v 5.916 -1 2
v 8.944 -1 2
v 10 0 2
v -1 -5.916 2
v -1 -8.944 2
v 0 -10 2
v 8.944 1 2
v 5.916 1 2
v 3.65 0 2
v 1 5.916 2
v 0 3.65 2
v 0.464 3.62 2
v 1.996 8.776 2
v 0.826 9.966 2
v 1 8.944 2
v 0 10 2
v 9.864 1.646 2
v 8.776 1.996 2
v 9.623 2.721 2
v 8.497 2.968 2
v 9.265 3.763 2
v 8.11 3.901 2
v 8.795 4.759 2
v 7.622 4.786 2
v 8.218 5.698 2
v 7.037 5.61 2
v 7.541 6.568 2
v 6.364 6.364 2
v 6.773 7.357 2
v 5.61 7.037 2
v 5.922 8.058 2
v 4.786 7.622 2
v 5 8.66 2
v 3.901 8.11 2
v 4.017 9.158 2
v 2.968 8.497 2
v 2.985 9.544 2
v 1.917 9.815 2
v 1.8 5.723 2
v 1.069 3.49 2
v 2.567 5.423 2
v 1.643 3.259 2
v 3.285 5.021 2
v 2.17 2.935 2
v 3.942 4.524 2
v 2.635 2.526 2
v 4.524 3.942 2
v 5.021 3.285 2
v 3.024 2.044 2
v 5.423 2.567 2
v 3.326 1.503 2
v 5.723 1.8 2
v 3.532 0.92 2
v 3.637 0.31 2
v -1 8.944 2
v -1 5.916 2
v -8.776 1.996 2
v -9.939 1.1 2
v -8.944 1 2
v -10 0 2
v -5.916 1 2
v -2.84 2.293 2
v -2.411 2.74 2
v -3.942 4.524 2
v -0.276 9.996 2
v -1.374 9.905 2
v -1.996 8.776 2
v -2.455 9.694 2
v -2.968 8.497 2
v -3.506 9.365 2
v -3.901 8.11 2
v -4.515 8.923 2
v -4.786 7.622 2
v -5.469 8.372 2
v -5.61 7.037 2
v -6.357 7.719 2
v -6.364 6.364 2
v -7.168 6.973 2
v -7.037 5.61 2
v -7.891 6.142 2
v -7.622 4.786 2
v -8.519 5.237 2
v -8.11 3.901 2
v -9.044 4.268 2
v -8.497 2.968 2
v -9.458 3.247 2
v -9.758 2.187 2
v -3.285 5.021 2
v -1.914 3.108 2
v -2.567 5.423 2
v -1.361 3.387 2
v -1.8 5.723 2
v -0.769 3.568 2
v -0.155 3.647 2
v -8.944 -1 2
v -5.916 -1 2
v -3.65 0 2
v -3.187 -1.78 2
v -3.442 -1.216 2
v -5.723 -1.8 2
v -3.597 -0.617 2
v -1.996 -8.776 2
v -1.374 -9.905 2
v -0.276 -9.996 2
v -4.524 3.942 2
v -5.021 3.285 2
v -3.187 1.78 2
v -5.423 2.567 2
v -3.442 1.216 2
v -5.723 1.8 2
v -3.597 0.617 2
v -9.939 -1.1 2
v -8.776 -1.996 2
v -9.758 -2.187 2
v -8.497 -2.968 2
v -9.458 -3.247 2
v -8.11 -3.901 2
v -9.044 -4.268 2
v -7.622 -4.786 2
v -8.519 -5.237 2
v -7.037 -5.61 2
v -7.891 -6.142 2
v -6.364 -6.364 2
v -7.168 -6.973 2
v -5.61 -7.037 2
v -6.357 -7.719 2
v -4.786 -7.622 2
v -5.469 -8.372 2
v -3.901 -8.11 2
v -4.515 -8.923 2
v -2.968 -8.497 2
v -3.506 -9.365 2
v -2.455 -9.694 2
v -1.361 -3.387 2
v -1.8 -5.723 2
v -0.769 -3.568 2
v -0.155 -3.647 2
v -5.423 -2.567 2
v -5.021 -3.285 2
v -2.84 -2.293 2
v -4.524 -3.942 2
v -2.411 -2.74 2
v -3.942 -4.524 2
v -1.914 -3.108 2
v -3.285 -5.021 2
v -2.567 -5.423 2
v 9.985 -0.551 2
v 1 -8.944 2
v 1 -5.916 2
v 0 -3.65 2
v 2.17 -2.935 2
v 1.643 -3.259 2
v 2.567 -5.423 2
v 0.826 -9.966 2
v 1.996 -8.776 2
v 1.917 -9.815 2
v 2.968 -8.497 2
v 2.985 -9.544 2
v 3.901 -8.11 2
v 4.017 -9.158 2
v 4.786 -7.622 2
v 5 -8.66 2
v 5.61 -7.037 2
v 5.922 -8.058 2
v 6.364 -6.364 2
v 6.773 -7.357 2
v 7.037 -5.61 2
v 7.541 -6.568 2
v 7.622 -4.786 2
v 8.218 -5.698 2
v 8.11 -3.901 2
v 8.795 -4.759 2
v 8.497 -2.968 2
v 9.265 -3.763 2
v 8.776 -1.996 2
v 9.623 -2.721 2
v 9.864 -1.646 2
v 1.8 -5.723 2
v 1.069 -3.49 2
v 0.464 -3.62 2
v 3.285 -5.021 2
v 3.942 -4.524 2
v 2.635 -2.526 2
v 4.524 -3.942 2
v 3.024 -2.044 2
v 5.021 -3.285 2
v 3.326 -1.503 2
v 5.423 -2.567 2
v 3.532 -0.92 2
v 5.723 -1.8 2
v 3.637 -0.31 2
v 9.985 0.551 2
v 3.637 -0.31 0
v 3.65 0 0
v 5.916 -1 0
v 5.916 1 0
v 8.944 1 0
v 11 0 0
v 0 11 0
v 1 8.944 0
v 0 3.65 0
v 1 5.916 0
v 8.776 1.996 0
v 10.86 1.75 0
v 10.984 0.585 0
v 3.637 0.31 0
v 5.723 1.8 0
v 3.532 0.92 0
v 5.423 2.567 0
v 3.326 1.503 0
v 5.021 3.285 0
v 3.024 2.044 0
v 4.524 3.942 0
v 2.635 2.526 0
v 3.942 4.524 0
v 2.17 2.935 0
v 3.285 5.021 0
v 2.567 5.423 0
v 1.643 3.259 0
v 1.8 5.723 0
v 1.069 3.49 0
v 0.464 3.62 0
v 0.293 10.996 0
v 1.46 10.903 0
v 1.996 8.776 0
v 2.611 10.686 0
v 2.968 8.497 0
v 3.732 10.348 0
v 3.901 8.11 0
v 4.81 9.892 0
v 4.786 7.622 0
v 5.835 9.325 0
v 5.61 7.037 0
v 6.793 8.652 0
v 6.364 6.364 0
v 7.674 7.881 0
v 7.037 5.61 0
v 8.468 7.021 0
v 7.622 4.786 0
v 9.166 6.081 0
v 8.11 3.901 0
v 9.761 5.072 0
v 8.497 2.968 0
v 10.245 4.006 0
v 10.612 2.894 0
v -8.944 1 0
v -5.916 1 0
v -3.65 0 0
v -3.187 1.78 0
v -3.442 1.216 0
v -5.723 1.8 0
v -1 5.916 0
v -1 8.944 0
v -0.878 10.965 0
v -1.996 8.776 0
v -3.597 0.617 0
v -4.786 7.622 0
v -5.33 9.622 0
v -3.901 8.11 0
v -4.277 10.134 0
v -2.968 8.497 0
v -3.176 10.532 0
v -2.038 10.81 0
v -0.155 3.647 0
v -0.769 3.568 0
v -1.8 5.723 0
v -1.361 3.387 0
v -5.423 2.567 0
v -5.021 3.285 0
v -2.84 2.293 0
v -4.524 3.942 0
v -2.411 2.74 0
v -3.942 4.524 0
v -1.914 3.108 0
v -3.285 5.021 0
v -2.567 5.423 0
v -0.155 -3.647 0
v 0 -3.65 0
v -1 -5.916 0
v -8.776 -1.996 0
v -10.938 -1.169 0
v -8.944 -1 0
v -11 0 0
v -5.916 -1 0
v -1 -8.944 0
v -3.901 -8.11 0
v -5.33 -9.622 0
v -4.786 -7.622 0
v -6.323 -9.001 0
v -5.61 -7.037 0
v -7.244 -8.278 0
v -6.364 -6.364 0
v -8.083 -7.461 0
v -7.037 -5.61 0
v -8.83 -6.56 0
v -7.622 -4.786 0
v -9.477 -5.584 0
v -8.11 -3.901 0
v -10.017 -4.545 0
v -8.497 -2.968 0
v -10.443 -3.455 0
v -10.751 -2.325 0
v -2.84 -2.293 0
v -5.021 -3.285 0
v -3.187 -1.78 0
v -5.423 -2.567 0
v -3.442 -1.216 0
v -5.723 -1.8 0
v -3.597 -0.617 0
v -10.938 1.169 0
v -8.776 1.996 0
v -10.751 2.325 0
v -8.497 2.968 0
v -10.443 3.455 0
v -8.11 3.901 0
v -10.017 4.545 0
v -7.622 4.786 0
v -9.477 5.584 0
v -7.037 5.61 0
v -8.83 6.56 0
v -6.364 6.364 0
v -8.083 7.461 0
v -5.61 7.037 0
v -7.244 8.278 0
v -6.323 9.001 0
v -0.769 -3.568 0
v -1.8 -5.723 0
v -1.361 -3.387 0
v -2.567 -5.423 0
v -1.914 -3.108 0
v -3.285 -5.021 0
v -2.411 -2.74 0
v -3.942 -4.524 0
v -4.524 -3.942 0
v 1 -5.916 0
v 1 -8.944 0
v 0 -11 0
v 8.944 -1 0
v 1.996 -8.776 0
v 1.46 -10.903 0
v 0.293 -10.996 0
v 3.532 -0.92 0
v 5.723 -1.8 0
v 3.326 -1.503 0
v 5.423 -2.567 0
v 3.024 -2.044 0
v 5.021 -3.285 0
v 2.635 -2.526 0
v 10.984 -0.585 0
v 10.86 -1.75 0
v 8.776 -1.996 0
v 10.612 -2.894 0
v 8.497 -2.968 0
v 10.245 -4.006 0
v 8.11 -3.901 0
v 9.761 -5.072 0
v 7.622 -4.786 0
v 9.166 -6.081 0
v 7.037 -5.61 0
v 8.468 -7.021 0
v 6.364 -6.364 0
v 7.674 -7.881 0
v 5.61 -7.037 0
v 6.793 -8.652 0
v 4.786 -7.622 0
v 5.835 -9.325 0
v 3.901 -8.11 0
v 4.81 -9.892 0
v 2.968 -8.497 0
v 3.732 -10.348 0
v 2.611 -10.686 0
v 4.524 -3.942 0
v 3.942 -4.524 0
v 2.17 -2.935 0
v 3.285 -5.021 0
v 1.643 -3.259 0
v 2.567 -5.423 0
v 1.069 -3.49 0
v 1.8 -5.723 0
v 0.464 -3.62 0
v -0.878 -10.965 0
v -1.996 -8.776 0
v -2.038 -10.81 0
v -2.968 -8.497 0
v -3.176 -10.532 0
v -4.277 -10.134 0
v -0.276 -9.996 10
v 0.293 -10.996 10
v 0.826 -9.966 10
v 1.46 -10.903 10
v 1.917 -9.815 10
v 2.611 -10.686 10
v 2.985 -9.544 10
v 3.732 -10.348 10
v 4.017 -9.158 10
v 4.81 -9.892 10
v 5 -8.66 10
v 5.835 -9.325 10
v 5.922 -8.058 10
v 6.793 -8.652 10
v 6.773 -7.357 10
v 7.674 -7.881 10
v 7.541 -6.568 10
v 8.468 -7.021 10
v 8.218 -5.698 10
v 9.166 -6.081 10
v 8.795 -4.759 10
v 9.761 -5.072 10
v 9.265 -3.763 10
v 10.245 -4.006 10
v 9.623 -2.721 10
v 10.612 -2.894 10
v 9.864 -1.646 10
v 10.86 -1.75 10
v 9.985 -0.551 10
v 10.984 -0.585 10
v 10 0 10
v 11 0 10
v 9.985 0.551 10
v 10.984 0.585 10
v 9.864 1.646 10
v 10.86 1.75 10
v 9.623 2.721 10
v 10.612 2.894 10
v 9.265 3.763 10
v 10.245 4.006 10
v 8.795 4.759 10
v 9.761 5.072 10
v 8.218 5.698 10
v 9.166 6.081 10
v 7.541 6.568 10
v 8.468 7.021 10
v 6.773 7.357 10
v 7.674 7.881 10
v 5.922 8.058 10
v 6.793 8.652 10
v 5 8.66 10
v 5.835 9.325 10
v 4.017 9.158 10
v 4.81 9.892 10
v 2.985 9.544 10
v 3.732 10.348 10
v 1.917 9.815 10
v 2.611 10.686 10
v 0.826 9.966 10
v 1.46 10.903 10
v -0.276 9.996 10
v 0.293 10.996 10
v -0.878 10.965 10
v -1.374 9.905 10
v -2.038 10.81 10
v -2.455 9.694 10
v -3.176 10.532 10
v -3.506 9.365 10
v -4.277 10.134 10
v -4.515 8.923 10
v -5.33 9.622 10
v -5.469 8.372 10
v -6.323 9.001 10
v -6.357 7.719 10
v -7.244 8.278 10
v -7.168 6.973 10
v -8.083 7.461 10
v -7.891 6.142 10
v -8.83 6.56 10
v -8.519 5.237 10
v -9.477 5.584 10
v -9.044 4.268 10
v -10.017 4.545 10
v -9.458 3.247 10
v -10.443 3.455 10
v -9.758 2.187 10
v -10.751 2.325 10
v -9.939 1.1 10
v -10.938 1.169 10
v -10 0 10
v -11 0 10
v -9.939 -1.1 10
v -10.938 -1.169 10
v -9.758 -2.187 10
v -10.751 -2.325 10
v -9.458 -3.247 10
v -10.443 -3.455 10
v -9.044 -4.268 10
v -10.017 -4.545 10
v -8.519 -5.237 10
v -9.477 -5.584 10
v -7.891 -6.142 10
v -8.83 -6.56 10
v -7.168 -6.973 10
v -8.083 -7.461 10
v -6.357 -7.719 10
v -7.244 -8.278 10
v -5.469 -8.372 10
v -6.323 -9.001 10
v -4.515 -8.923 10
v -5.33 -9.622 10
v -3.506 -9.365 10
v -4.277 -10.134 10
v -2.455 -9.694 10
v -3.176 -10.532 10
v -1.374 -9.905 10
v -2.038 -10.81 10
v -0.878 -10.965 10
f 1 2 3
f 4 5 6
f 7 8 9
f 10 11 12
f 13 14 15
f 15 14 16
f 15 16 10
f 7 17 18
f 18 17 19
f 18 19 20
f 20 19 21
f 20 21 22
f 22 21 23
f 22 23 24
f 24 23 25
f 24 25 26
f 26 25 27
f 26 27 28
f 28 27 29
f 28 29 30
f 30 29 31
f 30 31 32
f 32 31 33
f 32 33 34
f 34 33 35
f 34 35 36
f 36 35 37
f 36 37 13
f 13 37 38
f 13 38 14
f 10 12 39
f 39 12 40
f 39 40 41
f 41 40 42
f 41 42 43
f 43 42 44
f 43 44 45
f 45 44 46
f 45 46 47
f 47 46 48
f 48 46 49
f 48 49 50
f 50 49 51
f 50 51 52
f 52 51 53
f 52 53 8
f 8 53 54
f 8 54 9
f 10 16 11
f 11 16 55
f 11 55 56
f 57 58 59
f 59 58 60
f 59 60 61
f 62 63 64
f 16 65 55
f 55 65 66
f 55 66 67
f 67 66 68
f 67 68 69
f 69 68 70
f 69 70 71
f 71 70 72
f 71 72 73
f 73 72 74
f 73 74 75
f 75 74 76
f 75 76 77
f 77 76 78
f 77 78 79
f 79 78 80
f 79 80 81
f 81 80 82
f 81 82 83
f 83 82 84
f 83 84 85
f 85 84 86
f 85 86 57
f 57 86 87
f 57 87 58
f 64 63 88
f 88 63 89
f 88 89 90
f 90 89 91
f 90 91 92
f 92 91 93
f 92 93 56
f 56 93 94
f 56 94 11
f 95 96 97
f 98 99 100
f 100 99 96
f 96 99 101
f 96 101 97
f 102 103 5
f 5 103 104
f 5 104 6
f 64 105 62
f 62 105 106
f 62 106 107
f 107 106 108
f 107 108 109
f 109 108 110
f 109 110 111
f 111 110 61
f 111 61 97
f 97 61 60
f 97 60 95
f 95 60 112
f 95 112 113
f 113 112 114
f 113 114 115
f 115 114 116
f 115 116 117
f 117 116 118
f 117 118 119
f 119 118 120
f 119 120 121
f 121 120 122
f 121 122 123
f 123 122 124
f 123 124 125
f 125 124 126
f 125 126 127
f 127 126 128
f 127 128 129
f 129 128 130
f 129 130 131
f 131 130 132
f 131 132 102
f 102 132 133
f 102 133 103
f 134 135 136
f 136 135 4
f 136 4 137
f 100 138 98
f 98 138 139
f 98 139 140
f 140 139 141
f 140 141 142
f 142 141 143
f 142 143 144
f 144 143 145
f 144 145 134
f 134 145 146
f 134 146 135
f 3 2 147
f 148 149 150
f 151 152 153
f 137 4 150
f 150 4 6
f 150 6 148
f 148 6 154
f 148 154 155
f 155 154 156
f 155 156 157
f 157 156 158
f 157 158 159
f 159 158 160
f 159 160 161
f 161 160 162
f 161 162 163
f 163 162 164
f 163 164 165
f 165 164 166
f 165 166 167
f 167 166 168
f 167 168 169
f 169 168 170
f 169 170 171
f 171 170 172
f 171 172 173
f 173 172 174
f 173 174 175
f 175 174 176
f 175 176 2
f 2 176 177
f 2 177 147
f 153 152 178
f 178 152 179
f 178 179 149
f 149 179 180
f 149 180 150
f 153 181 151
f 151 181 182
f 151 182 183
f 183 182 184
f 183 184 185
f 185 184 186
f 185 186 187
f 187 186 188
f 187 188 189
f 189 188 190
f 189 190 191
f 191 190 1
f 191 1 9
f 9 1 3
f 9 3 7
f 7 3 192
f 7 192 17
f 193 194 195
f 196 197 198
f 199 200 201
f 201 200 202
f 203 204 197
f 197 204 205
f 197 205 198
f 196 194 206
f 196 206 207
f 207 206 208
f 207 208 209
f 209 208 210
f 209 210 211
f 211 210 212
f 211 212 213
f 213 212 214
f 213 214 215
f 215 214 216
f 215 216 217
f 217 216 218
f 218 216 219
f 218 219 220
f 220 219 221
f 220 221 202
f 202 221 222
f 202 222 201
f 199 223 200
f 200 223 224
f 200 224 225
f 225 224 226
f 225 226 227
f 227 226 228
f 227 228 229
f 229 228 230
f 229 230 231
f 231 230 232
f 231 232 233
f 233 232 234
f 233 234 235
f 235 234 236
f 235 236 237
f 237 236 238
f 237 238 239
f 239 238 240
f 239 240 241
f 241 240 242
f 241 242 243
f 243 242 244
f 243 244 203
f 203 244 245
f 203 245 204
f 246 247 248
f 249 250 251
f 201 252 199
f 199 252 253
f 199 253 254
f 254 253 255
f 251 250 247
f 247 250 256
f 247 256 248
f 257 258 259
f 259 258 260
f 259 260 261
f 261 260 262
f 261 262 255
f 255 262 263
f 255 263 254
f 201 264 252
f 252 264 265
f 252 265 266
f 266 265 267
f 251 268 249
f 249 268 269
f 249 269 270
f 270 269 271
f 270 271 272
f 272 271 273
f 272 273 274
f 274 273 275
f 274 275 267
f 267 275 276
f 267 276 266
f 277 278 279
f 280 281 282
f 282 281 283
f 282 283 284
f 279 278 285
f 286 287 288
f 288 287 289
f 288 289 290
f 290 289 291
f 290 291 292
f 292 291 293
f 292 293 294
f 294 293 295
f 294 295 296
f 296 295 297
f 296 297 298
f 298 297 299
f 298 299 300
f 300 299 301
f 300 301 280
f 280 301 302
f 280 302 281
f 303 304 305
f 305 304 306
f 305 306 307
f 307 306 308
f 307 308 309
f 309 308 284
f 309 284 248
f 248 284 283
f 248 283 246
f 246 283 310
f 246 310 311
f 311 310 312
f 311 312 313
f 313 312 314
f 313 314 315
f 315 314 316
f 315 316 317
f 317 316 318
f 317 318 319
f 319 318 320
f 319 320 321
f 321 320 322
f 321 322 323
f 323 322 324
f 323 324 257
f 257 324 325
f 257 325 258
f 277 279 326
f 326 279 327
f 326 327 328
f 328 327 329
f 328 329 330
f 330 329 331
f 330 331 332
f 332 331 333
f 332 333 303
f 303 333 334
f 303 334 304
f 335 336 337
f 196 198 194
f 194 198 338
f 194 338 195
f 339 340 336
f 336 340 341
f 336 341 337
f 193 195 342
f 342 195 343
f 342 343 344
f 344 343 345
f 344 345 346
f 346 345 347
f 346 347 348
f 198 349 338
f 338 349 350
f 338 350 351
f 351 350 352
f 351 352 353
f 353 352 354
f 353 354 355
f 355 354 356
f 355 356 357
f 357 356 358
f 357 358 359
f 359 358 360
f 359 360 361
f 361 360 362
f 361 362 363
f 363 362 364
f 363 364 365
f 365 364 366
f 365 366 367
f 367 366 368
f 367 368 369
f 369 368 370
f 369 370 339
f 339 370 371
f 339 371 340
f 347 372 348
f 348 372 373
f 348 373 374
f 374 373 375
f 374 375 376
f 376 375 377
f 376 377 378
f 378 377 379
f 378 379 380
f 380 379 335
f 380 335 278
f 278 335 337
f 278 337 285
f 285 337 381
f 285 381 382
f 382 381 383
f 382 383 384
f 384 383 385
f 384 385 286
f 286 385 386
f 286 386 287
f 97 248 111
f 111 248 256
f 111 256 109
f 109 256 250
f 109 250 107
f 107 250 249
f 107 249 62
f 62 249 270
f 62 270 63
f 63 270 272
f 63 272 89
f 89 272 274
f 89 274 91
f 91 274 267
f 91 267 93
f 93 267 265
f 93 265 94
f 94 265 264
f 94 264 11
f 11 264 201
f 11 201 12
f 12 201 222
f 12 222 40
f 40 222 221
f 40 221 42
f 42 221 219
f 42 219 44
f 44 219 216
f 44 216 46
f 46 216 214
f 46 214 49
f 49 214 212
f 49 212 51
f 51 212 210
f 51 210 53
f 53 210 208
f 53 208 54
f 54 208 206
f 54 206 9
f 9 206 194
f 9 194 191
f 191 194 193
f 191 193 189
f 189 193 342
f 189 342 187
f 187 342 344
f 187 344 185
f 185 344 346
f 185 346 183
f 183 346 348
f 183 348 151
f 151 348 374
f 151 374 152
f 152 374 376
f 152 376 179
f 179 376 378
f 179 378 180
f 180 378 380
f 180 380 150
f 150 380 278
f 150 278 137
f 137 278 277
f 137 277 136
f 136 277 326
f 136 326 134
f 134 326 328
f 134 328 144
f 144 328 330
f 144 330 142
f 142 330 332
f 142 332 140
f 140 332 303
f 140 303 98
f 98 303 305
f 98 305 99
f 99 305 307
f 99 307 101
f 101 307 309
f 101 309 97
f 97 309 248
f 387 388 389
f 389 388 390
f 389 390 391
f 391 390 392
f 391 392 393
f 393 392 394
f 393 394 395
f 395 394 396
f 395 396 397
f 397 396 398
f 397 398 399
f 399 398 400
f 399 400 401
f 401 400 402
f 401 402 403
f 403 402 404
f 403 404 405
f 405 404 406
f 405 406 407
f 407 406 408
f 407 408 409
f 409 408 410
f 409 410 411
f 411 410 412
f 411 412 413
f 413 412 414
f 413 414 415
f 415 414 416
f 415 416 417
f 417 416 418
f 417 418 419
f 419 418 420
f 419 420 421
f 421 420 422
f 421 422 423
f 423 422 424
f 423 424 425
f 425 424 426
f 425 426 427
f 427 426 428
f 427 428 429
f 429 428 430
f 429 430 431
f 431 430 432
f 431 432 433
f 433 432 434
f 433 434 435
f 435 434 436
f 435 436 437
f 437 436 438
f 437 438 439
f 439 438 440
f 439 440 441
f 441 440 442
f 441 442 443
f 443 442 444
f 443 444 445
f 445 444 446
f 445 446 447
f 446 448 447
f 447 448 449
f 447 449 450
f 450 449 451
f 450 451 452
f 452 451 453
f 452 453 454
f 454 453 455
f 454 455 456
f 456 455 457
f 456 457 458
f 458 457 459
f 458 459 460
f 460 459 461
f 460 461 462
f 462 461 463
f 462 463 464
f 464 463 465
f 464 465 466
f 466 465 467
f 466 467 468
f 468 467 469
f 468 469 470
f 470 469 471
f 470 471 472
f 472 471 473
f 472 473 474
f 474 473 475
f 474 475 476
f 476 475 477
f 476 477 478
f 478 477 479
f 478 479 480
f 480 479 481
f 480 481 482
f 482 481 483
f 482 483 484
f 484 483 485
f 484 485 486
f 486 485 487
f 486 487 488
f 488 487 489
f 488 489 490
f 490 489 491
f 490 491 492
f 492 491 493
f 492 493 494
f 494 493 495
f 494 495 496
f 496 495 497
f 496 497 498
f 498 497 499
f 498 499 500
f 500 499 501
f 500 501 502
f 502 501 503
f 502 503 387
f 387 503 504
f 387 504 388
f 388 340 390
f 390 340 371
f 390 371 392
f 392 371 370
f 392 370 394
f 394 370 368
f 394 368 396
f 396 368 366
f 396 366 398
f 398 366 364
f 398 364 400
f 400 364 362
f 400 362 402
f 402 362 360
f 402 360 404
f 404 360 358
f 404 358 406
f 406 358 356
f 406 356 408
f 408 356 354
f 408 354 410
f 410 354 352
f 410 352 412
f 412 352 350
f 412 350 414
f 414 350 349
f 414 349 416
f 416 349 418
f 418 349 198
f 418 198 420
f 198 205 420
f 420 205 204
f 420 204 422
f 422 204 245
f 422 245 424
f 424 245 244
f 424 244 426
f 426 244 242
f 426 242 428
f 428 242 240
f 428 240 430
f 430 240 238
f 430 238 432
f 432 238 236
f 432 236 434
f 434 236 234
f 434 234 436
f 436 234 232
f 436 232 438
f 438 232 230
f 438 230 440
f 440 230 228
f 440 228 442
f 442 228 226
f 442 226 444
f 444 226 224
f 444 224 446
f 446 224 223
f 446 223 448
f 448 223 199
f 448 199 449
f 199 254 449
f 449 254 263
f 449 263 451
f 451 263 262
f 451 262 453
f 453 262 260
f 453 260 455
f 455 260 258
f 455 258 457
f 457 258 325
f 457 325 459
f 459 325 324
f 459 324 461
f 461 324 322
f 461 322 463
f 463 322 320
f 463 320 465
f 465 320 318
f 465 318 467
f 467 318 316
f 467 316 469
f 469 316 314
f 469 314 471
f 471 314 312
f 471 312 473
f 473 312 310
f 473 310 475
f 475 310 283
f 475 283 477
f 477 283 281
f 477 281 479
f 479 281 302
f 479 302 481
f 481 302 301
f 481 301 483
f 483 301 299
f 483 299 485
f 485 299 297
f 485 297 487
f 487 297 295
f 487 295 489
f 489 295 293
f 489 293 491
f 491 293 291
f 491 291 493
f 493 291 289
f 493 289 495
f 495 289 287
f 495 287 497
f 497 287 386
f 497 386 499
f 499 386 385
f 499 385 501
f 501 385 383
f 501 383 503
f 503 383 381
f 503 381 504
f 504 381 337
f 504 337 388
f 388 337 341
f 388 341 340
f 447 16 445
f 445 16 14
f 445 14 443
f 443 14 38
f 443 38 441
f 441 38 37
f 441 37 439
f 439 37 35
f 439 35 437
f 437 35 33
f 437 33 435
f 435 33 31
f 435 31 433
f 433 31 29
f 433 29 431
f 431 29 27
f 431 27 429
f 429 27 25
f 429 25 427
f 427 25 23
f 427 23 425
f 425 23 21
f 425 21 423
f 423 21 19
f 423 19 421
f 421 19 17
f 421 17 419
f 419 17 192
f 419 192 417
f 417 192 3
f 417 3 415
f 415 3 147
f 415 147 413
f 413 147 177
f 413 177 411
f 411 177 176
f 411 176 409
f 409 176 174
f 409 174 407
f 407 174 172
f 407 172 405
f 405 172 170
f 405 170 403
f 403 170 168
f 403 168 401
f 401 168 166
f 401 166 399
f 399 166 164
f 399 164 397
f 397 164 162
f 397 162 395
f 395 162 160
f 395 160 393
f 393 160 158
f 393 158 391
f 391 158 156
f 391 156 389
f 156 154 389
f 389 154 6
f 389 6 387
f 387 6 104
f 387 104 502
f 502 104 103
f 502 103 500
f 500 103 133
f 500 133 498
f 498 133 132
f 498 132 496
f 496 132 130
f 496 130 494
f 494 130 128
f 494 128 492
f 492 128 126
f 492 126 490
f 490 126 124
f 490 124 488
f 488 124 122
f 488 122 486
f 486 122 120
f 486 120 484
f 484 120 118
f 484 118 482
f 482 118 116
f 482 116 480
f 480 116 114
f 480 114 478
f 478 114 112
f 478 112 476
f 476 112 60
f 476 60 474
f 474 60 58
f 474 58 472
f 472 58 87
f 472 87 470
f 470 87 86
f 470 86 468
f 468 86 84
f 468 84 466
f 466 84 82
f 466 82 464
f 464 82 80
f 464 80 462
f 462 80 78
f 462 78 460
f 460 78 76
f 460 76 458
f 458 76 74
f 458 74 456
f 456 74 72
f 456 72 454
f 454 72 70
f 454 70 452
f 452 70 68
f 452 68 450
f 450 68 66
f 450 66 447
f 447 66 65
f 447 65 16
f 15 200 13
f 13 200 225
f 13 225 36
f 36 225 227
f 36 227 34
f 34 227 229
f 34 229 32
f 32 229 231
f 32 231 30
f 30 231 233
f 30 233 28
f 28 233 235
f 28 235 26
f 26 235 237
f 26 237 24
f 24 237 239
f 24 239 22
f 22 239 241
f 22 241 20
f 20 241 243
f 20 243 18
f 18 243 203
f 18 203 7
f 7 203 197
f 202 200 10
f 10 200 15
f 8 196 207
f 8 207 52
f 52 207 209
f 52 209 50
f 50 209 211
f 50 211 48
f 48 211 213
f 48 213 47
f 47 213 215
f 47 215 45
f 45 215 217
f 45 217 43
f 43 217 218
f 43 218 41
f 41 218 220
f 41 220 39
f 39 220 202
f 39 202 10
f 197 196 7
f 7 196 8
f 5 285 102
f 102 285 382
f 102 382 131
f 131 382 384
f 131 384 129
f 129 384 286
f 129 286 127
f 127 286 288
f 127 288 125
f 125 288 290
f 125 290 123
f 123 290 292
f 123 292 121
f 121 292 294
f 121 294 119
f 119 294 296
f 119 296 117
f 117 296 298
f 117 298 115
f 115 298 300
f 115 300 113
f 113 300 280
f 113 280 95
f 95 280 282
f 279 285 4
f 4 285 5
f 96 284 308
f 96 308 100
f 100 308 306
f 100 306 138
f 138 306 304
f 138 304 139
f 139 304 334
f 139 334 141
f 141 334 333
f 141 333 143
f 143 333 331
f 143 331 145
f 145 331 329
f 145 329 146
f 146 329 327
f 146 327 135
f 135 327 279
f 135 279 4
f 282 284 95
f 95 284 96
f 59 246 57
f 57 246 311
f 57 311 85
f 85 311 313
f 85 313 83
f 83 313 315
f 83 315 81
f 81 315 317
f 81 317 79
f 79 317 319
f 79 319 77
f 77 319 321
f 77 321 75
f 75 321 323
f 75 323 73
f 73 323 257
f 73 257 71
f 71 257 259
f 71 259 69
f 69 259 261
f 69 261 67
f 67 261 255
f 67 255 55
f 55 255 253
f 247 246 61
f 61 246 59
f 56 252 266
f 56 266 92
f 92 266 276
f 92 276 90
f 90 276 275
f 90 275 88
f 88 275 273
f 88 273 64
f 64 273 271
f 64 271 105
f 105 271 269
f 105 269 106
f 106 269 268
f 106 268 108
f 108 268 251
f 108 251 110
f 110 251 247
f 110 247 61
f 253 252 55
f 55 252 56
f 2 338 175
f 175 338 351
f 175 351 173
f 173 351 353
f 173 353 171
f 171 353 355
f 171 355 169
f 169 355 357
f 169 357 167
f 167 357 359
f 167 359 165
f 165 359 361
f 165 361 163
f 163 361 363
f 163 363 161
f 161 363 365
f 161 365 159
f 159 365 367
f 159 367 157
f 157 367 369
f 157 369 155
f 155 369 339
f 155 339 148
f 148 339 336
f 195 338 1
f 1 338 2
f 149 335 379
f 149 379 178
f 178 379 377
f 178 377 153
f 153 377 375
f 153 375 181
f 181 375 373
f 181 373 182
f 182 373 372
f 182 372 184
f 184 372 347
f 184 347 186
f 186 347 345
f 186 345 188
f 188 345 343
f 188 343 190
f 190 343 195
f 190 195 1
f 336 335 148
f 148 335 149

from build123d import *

# Parameters (mm, degrees)
ESBO_O1_R                = 10
ESBO_O1_R_2              = 3.65
RESSALTO_EXTRUS_O1_DEPTH = 2
ESBO_O2_R                = 11
ESBO_O2_R_2              = 10
RESSALTO_EXTRUS_O2_DEPTH = 10
CORTE_EXTRUS_O1_DEPTH    = 10


with BuildPart() as part:
    # Esboço1 → Ressalto-extrusão1 (new body)
    with BuildSketch(Plane.XY):
        Circle(ESBO_O1_R)
        Circle(ESBO_O1_R_2, mode=Mode.SUBTRACT)
    extrude(amount=RESSALTO_EXTRUS_O1_DEPTH)

    # Esboço2 → Ressalto-extrusão2 (add)
    with BuildSketch(Plane.XY):
        Circle(ESBO_O2_R)
        Circle(ESBO_O2_R_2, mode=Mode.SUBTRACT)
    extrude(amount=RESSALTO_EXTRUS_O2_DEPTH)

    # Esboço3 → Corte-extrusão1 (cut)
    with BuildSketch(Plane(origin=(0, 0, 0), x_dir=(-1, 0, 0), z_dir=(0, 0, -1))):
        with BuildLine():
            Line((-8.94427191, -1), (-6, -1))
            Line((-6, -1), (-5.916079783, -1))
            ThreePointArc((-5.916079783, -1), (-4.242640687, -4.242640687), (-1, -5.916079783))
            Line((-1, -5.916079783), (-1, -6))
            Line((-1, -6), (-1, -8.94427191))
            ThreePointArc((-1, -8.94427191), (-6.363961031, -6.363961031), (-8.94427191, -1))
        make_face()
        with BuildLine():
            Line((-8.94427191, 1), (-6, 1))
            Line((-6, 1), (-5.916079783, 1))
            ThreePointArc((-5.916079783, 1), (-4.242640687, 4.242640687), (-1, 5.916079783))
            Line((-1, 5.916079783), (-1, 6))
            Line((-1, 6), (-1, 8.94427191))
            ThreePointArc((-1, 8.94427191), (-6.363961031, 6.363961031), (-8.94427191, 1))
        make_face()
        with BuildLine():
            Line((1, 6), (1, 8.94427191))
            ThreePointArc((1, 8.94427191), (6.363961031, 6.363961031), (8.94427191, 1))
            Line((8.94427191, 1), (6, 1))
            Line((6, 1), (5.916079783, 1))
            ThreePointArc((5.916079783, 1), (4.242640687, 4.242640687), (1, 5.916079783))
            Line((1, 5.916079783), (1, 6))
        make_face()
        with BuildLine():
            Line((6, -1), (8.94427191, -1))
            ThreePointArc((8.94427191, -1), (6.363961031, -6.363961031), (1, -8.94427191))
            Line((1, -8.94427191), (1, -6))
            Line((1, -6), (1, -5.916079783))
            ThreePointArc((1, -5.916079783), (4.242640687, -4.242640687), (5.916079783, -1))
            Line((5.916079783, -1), (6, -1))
        make_face()
    extrude(amount=-CORTE_EXTRUS_O1_DEPTH, mode=Mode.SUBTRACT)


solid = part.part
